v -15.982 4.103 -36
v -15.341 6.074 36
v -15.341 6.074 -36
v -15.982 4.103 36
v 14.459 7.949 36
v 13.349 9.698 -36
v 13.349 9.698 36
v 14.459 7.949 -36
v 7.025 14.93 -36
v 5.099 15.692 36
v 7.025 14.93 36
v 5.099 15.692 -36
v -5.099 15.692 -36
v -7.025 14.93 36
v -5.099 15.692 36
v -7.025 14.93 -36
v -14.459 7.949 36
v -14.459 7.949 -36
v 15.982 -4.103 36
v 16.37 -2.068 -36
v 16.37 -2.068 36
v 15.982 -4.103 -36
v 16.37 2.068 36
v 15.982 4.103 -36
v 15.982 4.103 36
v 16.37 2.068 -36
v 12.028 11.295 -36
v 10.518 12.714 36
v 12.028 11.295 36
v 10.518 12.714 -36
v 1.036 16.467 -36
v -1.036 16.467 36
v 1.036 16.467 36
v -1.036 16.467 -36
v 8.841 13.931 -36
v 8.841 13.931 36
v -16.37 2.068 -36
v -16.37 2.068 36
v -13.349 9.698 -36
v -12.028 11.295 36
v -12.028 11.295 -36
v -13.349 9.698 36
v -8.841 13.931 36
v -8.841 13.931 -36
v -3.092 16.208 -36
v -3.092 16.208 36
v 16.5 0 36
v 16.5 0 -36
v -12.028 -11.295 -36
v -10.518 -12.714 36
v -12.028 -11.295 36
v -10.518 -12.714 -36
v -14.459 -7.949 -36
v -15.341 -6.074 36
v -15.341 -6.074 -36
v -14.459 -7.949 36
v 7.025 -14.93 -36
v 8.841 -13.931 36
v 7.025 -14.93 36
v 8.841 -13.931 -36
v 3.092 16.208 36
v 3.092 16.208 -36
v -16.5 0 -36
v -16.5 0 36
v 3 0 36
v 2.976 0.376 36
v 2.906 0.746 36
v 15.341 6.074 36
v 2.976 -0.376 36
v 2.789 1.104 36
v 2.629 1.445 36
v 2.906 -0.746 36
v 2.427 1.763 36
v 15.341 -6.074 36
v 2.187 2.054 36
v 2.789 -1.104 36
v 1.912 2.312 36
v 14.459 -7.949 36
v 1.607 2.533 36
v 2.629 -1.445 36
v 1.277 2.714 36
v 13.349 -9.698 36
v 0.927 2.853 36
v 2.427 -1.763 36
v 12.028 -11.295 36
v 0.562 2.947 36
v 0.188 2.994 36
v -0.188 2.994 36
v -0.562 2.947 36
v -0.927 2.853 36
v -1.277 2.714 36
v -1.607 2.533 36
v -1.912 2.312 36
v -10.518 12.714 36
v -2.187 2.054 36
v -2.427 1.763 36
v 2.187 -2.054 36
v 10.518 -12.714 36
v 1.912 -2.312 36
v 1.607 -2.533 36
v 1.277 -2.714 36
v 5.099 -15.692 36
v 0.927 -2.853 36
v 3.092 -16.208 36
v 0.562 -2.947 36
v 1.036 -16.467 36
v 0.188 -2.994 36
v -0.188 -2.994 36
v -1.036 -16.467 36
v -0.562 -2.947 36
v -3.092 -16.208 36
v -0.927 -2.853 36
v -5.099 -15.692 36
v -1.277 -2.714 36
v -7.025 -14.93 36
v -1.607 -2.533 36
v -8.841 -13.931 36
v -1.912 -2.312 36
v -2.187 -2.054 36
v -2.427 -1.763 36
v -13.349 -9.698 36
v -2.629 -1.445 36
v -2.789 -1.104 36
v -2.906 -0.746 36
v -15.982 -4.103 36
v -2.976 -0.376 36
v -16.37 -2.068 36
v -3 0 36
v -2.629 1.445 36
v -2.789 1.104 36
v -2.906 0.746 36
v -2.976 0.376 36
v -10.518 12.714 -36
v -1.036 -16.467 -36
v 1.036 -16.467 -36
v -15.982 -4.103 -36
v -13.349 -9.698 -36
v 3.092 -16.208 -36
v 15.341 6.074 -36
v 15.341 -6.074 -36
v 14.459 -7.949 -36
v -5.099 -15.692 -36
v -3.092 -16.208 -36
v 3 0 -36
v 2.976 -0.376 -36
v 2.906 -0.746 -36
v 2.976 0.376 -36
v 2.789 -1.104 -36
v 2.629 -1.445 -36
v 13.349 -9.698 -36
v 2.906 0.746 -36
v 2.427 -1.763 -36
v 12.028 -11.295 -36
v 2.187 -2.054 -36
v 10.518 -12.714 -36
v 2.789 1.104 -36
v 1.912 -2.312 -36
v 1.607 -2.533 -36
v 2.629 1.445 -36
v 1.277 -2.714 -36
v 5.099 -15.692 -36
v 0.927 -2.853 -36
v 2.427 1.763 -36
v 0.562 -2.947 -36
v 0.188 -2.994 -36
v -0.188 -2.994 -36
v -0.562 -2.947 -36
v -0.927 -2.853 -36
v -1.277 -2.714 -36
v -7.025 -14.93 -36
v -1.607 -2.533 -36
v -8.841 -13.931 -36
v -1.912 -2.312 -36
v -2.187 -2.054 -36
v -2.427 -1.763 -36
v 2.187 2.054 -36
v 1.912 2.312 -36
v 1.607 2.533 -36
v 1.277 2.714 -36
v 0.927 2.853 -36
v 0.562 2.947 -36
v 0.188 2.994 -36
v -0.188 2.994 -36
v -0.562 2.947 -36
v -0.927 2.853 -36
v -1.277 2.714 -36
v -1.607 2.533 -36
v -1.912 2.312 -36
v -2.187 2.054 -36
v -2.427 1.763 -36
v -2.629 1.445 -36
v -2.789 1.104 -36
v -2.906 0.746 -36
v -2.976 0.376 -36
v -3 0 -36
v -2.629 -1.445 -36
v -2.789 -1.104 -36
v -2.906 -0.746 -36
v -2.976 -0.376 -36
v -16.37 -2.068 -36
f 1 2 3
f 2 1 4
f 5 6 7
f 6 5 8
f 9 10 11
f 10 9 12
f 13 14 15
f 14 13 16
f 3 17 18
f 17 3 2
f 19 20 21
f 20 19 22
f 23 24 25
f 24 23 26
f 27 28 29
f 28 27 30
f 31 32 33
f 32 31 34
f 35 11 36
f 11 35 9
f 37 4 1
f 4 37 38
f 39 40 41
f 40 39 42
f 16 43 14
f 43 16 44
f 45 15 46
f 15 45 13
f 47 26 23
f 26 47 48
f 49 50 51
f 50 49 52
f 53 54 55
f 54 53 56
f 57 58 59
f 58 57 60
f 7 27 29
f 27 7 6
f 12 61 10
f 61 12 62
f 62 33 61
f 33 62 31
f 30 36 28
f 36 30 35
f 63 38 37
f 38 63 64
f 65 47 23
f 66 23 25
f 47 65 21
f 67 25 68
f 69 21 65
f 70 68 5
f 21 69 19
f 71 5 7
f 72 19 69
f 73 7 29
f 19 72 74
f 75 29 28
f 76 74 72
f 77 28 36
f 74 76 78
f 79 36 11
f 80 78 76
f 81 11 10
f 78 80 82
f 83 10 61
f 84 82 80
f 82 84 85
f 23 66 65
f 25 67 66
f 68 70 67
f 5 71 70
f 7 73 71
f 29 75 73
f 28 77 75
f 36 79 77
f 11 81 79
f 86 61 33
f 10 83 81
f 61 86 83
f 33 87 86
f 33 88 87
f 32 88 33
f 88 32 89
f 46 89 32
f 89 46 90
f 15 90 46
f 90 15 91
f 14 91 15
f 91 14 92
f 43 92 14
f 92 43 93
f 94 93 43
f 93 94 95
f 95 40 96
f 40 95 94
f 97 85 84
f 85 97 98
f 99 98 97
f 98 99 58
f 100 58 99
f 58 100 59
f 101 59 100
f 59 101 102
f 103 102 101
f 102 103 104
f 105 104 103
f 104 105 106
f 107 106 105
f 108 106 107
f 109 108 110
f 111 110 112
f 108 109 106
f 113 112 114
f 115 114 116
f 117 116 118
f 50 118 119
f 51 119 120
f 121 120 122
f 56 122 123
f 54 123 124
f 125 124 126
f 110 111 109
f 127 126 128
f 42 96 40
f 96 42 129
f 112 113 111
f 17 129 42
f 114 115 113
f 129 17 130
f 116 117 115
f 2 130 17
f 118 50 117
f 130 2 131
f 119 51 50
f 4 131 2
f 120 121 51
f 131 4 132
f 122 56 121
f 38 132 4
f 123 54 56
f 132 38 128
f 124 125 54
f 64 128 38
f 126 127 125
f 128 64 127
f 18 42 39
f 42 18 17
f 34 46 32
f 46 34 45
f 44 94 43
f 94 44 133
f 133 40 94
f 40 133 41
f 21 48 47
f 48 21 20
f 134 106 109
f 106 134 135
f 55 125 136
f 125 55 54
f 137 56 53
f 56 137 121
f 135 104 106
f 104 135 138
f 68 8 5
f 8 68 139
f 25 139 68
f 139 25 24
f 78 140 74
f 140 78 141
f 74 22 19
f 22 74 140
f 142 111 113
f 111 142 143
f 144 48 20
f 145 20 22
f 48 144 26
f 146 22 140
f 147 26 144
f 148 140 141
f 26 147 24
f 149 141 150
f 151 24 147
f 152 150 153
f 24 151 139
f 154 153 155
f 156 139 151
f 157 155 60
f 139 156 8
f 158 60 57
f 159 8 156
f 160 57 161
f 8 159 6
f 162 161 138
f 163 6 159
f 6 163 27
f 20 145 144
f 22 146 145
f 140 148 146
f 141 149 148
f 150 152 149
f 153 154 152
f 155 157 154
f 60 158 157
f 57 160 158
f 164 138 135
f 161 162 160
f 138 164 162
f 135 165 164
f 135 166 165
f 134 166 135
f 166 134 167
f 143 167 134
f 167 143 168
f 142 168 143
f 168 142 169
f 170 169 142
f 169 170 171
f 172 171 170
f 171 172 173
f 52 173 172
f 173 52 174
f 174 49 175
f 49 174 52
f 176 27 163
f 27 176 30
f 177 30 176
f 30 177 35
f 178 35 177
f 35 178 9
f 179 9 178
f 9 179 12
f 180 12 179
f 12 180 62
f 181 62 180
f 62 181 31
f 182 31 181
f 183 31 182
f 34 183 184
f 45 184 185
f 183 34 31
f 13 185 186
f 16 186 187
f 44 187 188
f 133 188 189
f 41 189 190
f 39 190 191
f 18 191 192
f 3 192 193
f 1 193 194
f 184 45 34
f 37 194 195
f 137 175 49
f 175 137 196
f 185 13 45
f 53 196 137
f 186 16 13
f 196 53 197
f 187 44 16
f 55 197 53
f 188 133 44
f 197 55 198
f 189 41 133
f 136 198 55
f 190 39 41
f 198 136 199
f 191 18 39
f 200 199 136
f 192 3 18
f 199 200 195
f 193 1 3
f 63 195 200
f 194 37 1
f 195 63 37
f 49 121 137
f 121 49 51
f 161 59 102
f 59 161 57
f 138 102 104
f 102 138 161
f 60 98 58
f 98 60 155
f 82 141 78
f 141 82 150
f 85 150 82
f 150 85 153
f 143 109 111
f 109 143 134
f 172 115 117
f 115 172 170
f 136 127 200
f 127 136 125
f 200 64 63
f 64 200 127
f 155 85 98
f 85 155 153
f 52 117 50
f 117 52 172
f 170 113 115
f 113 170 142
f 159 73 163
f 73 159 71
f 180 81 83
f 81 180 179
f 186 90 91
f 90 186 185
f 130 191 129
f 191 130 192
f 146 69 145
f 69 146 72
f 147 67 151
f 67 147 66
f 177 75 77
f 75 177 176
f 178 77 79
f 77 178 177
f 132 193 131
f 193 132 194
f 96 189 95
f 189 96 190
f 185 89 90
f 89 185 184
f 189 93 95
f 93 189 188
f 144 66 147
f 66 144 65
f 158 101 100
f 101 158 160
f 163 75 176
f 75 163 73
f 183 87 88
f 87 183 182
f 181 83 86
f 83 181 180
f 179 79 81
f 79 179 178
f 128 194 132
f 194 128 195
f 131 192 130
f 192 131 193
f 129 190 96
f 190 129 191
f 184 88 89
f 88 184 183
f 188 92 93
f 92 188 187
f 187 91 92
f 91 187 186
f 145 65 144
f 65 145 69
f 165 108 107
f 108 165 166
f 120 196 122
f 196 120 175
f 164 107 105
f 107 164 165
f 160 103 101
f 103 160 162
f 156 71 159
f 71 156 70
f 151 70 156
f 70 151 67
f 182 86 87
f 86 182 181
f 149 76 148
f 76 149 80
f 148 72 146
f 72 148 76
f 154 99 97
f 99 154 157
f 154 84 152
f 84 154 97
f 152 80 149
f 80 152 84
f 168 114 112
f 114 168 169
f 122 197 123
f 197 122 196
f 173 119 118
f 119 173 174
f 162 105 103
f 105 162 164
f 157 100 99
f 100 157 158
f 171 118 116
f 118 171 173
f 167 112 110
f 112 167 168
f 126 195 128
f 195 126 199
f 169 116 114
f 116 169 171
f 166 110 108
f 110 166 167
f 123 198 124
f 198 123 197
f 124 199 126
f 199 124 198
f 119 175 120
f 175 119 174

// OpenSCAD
$fn = 50;


difference() {
	union() {
		translate(v = [0, 0, -36.0000000000]) {
			cylinder(h = 72, r = 16.5000000000);
		}
	}
	union() {
		translate(v = [0, 0, -100.0000000000]) {
			cylinder(h = 200, r = 3);
		}
	}
}
